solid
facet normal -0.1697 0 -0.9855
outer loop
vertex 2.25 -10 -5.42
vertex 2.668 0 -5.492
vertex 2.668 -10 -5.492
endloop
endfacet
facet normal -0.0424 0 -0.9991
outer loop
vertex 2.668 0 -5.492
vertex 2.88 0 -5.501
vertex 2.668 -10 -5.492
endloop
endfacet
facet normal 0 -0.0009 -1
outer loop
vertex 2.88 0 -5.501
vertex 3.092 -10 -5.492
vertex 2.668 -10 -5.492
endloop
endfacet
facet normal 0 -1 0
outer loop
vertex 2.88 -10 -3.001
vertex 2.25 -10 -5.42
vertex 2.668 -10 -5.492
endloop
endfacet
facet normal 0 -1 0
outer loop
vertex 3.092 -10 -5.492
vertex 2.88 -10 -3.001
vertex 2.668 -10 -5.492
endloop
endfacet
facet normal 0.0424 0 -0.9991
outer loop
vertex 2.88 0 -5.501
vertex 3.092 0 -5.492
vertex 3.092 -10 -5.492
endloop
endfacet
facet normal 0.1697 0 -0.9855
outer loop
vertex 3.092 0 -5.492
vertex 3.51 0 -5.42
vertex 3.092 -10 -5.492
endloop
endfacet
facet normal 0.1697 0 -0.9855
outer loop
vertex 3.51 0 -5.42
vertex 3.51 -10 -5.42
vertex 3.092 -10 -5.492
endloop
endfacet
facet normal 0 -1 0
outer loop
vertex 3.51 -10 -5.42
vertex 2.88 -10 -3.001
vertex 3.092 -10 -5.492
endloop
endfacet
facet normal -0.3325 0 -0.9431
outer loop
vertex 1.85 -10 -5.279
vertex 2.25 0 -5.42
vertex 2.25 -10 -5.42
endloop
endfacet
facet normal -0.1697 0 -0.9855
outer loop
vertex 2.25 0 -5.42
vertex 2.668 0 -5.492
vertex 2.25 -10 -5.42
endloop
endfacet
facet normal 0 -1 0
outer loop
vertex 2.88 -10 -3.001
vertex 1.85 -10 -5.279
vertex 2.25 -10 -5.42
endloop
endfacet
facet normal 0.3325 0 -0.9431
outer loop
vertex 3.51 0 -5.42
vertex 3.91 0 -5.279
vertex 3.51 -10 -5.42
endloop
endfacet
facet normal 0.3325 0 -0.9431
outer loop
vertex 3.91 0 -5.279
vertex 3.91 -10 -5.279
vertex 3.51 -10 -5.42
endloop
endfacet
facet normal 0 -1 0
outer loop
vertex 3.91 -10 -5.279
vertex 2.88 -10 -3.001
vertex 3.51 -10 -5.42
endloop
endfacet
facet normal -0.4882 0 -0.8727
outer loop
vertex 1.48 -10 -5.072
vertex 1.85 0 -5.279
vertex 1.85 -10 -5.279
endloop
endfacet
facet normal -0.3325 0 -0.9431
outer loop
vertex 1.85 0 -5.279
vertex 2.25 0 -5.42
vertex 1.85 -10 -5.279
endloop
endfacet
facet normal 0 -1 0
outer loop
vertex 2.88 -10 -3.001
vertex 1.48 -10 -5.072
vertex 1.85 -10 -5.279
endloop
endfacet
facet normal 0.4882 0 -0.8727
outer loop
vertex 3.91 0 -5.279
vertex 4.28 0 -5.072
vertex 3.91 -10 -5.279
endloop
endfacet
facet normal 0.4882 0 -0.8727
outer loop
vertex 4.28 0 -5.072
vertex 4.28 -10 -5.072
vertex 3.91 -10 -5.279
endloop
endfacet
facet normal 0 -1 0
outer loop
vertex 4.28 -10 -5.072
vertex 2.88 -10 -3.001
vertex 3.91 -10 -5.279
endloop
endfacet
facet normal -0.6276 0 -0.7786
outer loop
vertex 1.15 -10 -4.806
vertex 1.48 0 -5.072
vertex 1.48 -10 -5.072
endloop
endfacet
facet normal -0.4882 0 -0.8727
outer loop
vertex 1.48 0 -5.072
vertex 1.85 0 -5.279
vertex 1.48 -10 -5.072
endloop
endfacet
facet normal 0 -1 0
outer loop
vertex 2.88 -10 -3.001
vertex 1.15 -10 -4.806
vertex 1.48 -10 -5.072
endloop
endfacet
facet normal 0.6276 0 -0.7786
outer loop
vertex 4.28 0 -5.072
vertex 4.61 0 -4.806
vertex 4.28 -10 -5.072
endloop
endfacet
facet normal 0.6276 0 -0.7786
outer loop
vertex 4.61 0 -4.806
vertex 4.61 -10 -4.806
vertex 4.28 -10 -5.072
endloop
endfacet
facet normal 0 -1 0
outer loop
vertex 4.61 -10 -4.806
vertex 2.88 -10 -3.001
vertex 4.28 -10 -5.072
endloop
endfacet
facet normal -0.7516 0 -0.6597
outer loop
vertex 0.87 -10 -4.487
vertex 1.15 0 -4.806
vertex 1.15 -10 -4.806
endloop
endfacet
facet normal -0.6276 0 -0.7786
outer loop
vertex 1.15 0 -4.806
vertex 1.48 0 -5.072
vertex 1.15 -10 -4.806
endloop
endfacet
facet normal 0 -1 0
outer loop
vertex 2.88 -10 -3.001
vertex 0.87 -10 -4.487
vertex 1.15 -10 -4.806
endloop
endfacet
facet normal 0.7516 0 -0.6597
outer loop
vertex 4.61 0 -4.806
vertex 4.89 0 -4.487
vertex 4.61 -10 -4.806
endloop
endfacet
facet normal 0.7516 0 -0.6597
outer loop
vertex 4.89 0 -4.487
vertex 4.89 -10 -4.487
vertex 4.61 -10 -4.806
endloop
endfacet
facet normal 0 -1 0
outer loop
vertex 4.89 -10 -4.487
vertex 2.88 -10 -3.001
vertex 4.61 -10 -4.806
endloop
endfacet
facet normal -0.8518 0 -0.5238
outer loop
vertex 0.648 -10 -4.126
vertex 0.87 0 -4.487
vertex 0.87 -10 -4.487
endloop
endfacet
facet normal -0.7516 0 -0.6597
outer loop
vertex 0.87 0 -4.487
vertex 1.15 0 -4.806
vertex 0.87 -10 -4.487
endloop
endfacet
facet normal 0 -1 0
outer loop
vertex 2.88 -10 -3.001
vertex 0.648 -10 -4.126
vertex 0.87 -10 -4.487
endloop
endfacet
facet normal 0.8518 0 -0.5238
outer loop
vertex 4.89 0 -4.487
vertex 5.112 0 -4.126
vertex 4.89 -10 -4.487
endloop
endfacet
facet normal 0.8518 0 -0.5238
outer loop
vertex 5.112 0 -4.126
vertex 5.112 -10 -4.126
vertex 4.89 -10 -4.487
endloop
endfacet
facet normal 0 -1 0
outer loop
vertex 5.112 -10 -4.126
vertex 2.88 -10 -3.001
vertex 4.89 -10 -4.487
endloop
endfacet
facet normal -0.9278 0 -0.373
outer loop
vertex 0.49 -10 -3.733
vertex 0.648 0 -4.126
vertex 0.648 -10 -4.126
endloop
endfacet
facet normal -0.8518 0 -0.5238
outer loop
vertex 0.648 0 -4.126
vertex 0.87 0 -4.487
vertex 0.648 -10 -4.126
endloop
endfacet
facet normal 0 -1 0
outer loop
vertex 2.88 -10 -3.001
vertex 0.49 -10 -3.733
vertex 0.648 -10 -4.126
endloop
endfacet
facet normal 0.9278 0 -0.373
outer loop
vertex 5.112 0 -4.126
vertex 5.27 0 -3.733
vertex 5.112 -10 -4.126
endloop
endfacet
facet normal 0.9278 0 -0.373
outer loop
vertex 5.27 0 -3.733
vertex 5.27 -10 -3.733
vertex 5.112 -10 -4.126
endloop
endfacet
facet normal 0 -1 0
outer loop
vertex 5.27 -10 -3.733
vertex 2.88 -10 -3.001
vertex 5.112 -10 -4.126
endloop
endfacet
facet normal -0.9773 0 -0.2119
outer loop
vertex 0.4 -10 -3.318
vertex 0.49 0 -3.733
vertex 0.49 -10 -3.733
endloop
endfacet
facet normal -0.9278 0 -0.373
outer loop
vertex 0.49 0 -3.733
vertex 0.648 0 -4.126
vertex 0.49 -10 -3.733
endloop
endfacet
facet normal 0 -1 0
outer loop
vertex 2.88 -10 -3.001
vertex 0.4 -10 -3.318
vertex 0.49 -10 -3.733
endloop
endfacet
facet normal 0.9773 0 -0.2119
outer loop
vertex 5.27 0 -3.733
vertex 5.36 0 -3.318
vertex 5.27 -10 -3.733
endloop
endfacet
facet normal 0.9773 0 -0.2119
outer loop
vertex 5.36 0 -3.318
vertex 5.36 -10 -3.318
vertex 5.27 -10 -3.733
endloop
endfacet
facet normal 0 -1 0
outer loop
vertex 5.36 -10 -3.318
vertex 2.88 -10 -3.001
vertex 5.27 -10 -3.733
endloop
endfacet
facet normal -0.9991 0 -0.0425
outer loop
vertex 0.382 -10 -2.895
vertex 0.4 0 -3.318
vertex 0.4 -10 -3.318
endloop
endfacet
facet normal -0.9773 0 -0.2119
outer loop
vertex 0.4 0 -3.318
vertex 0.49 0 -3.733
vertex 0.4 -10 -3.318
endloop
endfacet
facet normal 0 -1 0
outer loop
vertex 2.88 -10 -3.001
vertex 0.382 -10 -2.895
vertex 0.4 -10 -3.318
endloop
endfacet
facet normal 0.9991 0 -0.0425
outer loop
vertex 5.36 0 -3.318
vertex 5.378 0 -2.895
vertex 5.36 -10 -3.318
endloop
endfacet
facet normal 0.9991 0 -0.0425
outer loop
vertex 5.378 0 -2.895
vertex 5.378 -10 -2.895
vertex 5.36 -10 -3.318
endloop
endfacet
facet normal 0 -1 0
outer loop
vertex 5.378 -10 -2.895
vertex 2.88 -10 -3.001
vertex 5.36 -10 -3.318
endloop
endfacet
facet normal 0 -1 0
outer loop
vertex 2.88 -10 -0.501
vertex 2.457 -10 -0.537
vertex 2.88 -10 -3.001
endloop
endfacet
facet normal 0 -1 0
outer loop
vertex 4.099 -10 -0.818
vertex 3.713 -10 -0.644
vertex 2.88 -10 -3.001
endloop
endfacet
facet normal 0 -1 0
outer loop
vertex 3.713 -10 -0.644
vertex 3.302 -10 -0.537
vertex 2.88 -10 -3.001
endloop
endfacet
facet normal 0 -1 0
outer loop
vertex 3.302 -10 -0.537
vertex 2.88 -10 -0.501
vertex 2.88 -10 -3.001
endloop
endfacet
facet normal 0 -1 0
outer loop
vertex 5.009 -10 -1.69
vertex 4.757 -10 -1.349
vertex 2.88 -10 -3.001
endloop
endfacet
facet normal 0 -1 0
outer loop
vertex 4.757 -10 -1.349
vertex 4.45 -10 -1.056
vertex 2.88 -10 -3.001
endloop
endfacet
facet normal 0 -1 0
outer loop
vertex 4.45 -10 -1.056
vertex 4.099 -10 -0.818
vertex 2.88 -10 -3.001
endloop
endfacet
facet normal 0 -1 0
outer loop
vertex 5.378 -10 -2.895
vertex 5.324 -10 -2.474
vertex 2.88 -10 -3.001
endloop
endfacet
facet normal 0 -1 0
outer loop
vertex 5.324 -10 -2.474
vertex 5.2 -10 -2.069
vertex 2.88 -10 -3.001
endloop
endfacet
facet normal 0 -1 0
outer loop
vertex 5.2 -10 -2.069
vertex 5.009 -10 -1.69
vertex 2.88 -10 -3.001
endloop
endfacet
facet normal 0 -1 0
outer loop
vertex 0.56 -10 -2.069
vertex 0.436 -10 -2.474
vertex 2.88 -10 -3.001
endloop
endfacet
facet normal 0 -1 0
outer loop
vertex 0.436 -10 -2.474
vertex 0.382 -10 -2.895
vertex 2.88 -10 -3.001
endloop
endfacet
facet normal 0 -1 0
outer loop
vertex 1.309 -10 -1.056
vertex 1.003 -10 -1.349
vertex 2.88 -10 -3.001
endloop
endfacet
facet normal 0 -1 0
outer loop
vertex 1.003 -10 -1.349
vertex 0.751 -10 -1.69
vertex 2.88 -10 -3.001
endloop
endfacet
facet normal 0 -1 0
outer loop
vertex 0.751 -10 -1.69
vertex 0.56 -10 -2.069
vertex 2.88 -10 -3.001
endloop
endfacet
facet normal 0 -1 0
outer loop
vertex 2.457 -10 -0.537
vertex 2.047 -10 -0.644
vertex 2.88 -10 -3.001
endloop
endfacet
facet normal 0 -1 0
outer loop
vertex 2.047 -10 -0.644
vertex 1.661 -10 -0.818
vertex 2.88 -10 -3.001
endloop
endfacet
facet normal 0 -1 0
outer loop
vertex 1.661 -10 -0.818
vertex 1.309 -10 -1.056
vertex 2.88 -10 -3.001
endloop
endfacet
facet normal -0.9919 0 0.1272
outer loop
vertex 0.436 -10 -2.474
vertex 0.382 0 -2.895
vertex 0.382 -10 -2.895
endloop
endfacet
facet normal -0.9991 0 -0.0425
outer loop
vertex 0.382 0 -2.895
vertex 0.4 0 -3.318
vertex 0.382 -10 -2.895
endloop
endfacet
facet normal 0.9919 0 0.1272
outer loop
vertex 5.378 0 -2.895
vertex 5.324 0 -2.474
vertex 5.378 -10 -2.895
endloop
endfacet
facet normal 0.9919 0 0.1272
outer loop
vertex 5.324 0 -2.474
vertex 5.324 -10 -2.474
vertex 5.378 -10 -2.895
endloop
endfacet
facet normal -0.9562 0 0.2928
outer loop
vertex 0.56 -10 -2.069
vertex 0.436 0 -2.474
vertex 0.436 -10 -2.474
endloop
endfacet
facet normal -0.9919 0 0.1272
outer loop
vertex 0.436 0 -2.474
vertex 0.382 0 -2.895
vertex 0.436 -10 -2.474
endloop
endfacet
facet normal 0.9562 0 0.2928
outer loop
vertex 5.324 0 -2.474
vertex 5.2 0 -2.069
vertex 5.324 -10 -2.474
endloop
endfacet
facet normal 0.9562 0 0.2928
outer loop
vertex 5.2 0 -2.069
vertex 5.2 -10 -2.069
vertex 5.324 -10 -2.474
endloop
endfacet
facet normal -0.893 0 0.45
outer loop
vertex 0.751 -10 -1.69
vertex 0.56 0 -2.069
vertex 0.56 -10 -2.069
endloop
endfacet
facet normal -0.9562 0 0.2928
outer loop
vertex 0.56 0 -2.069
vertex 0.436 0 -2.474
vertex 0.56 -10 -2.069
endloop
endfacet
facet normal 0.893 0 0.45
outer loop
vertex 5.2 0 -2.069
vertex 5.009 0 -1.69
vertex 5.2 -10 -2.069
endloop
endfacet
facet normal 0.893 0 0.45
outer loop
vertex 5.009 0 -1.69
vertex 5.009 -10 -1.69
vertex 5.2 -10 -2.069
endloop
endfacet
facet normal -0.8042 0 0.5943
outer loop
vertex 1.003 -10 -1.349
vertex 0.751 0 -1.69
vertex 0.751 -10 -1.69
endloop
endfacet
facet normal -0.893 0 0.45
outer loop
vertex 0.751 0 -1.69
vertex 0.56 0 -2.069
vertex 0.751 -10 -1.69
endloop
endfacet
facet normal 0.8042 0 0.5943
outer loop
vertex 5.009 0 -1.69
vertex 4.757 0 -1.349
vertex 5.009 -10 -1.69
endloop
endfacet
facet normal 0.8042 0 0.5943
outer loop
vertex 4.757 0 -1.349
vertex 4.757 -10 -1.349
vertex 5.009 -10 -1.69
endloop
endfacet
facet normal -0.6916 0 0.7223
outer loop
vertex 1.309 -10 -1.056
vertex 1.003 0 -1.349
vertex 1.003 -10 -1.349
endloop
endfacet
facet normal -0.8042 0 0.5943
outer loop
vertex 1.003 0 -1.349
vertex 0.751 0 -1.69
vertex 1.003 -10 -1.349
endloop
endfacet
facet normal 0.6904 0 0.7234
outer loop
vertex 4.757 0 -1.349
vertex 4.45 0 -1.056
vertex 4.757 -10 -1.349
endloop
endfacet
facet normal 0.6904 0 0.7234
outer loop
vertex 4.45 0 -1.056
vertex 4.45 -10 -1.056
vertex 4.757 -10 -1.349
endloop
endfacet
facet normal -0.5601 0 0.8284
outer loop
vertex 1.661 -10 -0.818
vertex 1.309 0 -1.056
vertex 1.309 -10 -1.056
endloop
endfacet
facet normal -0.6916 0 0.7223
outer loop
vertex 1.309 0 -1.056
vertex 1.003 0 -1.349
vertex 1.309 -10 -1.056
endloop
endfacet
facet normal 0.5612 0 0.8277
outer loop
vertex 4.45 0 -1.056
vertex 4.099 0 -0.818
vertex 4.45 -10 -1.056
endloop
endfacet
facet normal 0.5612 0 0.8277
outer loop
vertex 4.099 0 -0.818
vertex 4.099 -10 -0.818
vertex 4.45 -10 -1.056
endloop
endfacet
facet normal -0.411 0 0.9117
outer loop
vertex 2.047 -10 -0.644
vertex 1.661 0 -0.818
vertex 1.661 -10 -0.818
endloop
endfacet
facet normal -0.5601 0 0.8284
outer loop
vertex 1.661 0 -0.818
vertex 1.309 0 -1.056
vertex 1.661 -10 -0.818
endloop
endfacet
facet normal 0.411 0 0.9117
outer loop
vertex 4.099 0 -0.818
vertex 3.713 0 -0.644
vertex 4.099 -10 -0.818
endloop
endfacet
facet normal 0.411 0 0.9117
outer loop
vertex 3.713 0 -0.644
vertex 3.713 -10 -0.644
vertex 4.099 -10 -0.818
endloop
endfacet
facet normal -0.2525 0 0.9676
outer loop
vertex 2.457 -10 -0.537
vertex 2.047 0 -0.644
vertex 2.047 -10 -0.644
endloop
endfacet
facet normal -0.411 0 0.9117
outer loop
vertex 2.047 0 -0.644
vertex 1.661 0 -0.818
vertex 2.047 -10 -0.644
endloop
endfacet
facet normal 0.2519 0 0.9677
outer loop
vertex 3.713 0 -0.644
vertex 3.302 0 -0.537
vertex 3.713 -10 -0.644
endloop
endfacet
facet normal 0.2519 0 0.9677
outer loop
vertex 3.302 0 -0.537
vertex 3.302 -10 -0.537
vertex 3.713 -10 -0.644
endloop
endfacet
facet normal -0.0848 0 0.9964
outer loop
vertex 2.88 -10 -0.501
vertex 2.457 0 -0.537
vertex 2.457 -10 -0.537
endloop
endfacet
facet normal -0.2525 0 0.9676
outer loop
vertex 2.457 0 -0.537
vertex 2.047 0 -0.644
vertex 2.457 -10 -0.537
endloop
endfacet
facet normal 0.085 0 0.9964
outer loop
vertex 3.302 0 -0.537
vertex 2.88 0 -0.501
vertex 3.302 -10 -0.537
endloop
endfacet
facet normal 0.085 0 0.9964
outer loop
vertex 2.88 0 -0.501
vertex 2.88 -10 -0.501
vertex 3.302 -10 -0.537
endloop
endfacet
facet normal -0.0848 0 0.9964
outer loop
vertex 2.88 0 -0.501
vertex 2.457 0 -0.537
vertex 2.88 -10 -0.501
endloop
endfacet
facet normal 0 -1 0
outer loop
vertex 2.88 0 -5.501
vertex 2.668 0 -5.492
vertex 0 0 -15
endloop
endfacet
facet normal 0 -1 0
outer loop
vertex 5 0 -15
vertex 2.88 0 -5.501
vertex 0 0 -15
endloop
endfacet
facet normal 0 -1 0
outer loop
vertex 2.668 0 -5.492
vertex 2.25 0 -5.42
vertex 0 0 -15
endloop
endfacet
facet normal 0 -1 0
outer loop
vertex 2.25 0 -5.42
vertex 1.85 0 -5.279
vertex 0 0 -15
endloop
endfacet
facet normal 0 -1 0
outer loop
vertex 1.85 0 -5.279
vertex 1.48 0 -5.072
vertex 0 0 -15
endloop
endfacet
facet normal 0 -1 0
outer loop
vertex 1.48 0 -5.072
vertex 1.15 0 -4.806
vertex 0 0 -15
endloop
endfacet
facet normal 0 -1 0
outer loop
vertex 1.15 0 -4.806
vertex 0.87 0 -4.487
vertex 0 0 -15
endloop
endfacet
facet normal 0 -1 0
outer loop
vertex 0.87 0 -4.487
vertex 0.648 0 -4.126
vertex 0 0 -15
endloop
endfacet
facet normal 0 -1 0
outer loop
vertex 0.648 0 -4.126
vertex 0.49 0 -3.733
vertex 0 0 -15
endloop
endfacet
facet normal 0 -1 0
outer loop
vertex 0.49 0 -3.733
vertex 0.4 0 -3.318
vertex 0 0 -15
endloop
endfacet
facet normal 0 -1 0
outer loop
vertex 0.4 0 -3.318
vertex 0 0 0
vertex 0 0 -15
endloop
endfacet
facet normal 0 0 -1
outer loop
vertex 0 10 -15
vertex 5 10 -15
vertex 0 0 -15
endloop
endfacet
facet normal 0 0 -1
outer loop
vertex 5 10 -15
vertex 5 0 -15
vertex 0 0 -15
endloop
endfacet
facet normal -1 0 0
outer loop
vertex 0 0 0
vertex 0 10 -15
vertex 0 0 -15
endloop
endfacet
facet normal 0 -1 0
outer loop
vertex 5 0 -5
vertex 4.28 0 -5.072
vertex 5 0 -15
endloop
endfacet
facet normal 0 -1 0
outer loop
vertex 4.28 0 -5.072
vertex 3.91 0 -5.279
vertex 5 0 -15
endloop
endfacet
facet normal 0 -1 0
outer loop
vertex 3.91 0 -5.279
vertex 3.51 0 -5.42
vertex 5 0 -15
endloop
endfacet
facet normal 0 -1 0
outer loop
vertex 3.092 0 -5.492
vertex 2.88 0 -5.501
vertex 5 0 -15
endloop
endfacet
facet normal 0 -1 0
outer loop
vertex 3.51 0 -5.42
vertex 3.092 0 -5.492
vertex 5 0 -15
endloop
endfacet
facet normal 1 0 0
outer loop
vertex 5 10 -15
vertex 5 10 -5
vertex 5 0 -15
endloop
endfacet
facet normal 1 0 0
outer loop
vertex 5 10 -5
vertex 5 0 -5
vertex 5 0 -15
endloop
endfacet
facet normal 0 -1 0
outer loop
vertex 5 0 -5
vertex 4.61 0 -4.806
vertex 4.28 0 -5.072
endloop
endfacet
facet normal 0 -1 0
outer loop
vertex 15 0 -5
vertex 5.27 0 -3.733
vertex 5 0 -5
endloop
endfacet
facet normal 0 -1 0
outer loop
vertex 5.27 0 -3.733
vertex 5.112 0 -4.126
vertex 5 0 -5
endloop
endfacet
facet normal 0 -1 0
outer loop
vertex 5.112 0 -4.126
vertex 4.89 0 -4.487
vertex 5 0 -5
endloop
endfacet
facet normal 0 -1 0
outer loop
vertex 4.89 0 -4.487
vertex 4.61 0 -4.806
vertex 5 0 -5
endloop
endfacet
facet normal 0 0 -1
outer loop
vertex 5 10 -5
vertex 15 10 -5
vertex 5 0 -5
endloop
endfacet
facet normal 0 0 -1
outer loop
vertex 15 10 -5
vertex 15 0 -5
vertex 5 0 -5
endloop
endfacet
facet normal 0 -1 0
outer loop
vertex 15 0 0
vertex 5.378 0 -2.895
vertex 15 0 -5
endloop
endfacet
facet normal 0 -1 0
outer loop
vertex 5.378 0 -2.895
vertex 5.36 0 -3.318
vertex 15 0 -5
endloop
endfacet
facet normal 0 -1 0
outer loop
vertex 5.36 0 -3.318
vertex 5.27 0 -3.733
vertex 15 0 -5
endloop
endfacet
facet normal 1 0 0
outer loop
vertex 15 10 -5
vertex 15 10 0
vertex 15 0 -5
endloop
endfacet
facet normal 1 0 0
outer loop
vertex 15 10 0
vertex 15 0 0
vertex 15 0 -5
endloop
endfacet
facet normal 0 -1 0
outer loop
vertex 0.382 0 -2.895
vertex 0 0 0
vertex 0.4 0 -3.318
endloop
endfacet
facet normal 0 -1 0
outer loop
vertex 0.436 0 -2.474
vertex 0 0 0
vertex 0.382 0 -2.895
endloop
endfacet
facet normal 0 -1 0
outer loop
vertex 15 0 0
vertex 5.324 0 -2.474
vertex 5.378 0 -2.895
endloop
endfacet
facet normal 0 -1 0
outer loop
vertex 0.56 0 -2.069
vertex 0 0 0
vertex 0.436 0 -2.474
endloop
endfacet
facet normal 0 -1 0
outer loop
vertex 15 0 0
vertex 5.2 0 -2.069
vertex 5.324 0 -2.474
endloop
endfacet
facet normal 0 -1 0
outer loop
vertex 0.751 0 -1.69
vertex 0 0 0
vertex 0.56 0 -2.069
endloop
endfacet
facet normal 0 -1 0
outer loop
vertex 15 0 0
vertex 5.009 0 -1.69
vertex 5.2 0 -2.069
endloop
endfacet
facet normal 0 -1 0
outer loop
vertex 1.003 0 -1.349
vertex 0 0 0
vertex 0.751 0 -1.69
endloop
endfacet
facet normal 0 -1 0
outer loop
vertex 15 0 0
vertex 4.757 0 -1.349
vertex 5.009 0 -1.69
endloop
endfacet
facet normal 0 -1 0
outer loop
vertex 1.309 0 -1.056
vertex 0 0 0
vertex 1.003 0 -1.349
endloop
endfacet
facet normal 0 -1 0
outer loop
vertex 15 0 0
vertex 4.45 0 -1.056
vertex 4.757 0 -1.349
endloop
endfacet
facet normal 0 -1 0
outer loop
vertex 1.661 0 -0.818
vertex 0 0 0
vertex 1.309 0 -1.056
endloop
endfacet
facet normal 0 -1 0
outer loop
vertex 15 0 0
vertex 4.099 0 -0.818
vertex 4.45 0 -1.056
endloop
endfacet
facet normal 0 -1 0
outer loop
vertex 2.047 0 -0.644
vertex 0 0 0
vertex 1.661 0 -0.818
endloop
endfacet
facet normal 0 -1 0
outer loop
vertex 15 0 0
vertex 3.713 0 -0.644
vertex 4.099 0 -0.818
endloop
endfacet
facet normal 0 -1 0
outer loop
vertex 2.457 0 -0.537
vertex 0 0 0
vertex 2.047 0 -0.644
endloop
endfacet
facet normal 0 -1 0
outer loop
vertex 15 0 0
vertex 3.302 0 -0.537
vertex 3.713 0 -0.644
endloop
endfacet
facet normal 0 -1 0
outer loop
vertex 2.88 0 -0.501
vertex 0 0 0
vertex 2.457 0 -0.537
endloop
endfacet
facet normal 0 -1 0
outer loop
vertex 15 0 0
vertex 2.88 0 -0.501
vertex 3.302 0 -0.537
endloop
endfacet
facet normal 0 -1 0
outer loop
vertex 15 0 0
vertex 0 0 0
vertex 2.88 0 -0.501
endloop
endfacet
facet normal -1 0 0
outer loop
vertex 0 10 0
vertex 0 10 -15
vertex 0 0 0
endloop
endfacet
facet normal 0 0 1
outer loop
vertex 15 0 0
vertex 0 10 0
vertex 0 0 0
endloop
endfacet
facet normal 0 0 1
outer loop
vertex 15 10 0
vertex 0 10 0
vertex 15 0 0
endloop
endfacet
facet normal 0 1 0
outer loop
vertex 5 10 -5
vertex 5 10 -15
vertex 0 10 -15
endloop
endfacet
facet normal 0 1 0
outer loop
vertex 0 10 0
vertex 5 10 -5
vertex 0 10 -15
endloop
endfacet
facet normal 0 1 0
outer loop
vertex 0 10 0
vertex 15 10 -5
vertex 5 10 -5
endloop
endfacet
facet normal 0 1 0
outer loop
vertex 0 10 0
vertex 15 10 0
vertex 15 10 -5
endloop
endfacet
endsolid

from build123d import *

# Parameters (mm, degrees)
SKETCH1_R           = 2.5
BOSS_EXTRUDE1_DEPTH = 10
BOSS_EXTRUDE2_START = -20
SKETCH2_R           = 2.5
BOSS_EXTRUDE2_DEPTH = 20


with BuildPart() as part:
    # Sketch1 → Boss-Extrude1 (new body)
    with BuildSketch(Plane(origin=(0, 0, 0), x_dir=(1, 0, 0), z_dir=(0, 1, 0))):
        Polygon((0, 15), (0, 0), (15, 0), (15, 5), (5, 5), (5, 15), align=None)
        with Locations(Location((2.879948547, 3.000793191, 0), (0, 0, 270))):
            Circle(SKETCH1_R, mode=Mode.SUBTRACT)
    extrude(amount=BOSS_EXTRUDE1_DEPTH)

    # Sketch2 → Boss-Extrude2 (add)
    with BuildSketch(Plane(origin=(0, 10, 0), x_dir=(1, 0, 0), z_dir=(0, 1, 0)).offset(BOSS_EXTRUDE2_START)):
        with Locations(Location((2.879948547, 3.000793191, 0), (0, 0, 270))):
            Circle(SKETCH2_R)
    extrude(amount=BOSS_EXTRUDE2_DEPTH)


solid = part.part
